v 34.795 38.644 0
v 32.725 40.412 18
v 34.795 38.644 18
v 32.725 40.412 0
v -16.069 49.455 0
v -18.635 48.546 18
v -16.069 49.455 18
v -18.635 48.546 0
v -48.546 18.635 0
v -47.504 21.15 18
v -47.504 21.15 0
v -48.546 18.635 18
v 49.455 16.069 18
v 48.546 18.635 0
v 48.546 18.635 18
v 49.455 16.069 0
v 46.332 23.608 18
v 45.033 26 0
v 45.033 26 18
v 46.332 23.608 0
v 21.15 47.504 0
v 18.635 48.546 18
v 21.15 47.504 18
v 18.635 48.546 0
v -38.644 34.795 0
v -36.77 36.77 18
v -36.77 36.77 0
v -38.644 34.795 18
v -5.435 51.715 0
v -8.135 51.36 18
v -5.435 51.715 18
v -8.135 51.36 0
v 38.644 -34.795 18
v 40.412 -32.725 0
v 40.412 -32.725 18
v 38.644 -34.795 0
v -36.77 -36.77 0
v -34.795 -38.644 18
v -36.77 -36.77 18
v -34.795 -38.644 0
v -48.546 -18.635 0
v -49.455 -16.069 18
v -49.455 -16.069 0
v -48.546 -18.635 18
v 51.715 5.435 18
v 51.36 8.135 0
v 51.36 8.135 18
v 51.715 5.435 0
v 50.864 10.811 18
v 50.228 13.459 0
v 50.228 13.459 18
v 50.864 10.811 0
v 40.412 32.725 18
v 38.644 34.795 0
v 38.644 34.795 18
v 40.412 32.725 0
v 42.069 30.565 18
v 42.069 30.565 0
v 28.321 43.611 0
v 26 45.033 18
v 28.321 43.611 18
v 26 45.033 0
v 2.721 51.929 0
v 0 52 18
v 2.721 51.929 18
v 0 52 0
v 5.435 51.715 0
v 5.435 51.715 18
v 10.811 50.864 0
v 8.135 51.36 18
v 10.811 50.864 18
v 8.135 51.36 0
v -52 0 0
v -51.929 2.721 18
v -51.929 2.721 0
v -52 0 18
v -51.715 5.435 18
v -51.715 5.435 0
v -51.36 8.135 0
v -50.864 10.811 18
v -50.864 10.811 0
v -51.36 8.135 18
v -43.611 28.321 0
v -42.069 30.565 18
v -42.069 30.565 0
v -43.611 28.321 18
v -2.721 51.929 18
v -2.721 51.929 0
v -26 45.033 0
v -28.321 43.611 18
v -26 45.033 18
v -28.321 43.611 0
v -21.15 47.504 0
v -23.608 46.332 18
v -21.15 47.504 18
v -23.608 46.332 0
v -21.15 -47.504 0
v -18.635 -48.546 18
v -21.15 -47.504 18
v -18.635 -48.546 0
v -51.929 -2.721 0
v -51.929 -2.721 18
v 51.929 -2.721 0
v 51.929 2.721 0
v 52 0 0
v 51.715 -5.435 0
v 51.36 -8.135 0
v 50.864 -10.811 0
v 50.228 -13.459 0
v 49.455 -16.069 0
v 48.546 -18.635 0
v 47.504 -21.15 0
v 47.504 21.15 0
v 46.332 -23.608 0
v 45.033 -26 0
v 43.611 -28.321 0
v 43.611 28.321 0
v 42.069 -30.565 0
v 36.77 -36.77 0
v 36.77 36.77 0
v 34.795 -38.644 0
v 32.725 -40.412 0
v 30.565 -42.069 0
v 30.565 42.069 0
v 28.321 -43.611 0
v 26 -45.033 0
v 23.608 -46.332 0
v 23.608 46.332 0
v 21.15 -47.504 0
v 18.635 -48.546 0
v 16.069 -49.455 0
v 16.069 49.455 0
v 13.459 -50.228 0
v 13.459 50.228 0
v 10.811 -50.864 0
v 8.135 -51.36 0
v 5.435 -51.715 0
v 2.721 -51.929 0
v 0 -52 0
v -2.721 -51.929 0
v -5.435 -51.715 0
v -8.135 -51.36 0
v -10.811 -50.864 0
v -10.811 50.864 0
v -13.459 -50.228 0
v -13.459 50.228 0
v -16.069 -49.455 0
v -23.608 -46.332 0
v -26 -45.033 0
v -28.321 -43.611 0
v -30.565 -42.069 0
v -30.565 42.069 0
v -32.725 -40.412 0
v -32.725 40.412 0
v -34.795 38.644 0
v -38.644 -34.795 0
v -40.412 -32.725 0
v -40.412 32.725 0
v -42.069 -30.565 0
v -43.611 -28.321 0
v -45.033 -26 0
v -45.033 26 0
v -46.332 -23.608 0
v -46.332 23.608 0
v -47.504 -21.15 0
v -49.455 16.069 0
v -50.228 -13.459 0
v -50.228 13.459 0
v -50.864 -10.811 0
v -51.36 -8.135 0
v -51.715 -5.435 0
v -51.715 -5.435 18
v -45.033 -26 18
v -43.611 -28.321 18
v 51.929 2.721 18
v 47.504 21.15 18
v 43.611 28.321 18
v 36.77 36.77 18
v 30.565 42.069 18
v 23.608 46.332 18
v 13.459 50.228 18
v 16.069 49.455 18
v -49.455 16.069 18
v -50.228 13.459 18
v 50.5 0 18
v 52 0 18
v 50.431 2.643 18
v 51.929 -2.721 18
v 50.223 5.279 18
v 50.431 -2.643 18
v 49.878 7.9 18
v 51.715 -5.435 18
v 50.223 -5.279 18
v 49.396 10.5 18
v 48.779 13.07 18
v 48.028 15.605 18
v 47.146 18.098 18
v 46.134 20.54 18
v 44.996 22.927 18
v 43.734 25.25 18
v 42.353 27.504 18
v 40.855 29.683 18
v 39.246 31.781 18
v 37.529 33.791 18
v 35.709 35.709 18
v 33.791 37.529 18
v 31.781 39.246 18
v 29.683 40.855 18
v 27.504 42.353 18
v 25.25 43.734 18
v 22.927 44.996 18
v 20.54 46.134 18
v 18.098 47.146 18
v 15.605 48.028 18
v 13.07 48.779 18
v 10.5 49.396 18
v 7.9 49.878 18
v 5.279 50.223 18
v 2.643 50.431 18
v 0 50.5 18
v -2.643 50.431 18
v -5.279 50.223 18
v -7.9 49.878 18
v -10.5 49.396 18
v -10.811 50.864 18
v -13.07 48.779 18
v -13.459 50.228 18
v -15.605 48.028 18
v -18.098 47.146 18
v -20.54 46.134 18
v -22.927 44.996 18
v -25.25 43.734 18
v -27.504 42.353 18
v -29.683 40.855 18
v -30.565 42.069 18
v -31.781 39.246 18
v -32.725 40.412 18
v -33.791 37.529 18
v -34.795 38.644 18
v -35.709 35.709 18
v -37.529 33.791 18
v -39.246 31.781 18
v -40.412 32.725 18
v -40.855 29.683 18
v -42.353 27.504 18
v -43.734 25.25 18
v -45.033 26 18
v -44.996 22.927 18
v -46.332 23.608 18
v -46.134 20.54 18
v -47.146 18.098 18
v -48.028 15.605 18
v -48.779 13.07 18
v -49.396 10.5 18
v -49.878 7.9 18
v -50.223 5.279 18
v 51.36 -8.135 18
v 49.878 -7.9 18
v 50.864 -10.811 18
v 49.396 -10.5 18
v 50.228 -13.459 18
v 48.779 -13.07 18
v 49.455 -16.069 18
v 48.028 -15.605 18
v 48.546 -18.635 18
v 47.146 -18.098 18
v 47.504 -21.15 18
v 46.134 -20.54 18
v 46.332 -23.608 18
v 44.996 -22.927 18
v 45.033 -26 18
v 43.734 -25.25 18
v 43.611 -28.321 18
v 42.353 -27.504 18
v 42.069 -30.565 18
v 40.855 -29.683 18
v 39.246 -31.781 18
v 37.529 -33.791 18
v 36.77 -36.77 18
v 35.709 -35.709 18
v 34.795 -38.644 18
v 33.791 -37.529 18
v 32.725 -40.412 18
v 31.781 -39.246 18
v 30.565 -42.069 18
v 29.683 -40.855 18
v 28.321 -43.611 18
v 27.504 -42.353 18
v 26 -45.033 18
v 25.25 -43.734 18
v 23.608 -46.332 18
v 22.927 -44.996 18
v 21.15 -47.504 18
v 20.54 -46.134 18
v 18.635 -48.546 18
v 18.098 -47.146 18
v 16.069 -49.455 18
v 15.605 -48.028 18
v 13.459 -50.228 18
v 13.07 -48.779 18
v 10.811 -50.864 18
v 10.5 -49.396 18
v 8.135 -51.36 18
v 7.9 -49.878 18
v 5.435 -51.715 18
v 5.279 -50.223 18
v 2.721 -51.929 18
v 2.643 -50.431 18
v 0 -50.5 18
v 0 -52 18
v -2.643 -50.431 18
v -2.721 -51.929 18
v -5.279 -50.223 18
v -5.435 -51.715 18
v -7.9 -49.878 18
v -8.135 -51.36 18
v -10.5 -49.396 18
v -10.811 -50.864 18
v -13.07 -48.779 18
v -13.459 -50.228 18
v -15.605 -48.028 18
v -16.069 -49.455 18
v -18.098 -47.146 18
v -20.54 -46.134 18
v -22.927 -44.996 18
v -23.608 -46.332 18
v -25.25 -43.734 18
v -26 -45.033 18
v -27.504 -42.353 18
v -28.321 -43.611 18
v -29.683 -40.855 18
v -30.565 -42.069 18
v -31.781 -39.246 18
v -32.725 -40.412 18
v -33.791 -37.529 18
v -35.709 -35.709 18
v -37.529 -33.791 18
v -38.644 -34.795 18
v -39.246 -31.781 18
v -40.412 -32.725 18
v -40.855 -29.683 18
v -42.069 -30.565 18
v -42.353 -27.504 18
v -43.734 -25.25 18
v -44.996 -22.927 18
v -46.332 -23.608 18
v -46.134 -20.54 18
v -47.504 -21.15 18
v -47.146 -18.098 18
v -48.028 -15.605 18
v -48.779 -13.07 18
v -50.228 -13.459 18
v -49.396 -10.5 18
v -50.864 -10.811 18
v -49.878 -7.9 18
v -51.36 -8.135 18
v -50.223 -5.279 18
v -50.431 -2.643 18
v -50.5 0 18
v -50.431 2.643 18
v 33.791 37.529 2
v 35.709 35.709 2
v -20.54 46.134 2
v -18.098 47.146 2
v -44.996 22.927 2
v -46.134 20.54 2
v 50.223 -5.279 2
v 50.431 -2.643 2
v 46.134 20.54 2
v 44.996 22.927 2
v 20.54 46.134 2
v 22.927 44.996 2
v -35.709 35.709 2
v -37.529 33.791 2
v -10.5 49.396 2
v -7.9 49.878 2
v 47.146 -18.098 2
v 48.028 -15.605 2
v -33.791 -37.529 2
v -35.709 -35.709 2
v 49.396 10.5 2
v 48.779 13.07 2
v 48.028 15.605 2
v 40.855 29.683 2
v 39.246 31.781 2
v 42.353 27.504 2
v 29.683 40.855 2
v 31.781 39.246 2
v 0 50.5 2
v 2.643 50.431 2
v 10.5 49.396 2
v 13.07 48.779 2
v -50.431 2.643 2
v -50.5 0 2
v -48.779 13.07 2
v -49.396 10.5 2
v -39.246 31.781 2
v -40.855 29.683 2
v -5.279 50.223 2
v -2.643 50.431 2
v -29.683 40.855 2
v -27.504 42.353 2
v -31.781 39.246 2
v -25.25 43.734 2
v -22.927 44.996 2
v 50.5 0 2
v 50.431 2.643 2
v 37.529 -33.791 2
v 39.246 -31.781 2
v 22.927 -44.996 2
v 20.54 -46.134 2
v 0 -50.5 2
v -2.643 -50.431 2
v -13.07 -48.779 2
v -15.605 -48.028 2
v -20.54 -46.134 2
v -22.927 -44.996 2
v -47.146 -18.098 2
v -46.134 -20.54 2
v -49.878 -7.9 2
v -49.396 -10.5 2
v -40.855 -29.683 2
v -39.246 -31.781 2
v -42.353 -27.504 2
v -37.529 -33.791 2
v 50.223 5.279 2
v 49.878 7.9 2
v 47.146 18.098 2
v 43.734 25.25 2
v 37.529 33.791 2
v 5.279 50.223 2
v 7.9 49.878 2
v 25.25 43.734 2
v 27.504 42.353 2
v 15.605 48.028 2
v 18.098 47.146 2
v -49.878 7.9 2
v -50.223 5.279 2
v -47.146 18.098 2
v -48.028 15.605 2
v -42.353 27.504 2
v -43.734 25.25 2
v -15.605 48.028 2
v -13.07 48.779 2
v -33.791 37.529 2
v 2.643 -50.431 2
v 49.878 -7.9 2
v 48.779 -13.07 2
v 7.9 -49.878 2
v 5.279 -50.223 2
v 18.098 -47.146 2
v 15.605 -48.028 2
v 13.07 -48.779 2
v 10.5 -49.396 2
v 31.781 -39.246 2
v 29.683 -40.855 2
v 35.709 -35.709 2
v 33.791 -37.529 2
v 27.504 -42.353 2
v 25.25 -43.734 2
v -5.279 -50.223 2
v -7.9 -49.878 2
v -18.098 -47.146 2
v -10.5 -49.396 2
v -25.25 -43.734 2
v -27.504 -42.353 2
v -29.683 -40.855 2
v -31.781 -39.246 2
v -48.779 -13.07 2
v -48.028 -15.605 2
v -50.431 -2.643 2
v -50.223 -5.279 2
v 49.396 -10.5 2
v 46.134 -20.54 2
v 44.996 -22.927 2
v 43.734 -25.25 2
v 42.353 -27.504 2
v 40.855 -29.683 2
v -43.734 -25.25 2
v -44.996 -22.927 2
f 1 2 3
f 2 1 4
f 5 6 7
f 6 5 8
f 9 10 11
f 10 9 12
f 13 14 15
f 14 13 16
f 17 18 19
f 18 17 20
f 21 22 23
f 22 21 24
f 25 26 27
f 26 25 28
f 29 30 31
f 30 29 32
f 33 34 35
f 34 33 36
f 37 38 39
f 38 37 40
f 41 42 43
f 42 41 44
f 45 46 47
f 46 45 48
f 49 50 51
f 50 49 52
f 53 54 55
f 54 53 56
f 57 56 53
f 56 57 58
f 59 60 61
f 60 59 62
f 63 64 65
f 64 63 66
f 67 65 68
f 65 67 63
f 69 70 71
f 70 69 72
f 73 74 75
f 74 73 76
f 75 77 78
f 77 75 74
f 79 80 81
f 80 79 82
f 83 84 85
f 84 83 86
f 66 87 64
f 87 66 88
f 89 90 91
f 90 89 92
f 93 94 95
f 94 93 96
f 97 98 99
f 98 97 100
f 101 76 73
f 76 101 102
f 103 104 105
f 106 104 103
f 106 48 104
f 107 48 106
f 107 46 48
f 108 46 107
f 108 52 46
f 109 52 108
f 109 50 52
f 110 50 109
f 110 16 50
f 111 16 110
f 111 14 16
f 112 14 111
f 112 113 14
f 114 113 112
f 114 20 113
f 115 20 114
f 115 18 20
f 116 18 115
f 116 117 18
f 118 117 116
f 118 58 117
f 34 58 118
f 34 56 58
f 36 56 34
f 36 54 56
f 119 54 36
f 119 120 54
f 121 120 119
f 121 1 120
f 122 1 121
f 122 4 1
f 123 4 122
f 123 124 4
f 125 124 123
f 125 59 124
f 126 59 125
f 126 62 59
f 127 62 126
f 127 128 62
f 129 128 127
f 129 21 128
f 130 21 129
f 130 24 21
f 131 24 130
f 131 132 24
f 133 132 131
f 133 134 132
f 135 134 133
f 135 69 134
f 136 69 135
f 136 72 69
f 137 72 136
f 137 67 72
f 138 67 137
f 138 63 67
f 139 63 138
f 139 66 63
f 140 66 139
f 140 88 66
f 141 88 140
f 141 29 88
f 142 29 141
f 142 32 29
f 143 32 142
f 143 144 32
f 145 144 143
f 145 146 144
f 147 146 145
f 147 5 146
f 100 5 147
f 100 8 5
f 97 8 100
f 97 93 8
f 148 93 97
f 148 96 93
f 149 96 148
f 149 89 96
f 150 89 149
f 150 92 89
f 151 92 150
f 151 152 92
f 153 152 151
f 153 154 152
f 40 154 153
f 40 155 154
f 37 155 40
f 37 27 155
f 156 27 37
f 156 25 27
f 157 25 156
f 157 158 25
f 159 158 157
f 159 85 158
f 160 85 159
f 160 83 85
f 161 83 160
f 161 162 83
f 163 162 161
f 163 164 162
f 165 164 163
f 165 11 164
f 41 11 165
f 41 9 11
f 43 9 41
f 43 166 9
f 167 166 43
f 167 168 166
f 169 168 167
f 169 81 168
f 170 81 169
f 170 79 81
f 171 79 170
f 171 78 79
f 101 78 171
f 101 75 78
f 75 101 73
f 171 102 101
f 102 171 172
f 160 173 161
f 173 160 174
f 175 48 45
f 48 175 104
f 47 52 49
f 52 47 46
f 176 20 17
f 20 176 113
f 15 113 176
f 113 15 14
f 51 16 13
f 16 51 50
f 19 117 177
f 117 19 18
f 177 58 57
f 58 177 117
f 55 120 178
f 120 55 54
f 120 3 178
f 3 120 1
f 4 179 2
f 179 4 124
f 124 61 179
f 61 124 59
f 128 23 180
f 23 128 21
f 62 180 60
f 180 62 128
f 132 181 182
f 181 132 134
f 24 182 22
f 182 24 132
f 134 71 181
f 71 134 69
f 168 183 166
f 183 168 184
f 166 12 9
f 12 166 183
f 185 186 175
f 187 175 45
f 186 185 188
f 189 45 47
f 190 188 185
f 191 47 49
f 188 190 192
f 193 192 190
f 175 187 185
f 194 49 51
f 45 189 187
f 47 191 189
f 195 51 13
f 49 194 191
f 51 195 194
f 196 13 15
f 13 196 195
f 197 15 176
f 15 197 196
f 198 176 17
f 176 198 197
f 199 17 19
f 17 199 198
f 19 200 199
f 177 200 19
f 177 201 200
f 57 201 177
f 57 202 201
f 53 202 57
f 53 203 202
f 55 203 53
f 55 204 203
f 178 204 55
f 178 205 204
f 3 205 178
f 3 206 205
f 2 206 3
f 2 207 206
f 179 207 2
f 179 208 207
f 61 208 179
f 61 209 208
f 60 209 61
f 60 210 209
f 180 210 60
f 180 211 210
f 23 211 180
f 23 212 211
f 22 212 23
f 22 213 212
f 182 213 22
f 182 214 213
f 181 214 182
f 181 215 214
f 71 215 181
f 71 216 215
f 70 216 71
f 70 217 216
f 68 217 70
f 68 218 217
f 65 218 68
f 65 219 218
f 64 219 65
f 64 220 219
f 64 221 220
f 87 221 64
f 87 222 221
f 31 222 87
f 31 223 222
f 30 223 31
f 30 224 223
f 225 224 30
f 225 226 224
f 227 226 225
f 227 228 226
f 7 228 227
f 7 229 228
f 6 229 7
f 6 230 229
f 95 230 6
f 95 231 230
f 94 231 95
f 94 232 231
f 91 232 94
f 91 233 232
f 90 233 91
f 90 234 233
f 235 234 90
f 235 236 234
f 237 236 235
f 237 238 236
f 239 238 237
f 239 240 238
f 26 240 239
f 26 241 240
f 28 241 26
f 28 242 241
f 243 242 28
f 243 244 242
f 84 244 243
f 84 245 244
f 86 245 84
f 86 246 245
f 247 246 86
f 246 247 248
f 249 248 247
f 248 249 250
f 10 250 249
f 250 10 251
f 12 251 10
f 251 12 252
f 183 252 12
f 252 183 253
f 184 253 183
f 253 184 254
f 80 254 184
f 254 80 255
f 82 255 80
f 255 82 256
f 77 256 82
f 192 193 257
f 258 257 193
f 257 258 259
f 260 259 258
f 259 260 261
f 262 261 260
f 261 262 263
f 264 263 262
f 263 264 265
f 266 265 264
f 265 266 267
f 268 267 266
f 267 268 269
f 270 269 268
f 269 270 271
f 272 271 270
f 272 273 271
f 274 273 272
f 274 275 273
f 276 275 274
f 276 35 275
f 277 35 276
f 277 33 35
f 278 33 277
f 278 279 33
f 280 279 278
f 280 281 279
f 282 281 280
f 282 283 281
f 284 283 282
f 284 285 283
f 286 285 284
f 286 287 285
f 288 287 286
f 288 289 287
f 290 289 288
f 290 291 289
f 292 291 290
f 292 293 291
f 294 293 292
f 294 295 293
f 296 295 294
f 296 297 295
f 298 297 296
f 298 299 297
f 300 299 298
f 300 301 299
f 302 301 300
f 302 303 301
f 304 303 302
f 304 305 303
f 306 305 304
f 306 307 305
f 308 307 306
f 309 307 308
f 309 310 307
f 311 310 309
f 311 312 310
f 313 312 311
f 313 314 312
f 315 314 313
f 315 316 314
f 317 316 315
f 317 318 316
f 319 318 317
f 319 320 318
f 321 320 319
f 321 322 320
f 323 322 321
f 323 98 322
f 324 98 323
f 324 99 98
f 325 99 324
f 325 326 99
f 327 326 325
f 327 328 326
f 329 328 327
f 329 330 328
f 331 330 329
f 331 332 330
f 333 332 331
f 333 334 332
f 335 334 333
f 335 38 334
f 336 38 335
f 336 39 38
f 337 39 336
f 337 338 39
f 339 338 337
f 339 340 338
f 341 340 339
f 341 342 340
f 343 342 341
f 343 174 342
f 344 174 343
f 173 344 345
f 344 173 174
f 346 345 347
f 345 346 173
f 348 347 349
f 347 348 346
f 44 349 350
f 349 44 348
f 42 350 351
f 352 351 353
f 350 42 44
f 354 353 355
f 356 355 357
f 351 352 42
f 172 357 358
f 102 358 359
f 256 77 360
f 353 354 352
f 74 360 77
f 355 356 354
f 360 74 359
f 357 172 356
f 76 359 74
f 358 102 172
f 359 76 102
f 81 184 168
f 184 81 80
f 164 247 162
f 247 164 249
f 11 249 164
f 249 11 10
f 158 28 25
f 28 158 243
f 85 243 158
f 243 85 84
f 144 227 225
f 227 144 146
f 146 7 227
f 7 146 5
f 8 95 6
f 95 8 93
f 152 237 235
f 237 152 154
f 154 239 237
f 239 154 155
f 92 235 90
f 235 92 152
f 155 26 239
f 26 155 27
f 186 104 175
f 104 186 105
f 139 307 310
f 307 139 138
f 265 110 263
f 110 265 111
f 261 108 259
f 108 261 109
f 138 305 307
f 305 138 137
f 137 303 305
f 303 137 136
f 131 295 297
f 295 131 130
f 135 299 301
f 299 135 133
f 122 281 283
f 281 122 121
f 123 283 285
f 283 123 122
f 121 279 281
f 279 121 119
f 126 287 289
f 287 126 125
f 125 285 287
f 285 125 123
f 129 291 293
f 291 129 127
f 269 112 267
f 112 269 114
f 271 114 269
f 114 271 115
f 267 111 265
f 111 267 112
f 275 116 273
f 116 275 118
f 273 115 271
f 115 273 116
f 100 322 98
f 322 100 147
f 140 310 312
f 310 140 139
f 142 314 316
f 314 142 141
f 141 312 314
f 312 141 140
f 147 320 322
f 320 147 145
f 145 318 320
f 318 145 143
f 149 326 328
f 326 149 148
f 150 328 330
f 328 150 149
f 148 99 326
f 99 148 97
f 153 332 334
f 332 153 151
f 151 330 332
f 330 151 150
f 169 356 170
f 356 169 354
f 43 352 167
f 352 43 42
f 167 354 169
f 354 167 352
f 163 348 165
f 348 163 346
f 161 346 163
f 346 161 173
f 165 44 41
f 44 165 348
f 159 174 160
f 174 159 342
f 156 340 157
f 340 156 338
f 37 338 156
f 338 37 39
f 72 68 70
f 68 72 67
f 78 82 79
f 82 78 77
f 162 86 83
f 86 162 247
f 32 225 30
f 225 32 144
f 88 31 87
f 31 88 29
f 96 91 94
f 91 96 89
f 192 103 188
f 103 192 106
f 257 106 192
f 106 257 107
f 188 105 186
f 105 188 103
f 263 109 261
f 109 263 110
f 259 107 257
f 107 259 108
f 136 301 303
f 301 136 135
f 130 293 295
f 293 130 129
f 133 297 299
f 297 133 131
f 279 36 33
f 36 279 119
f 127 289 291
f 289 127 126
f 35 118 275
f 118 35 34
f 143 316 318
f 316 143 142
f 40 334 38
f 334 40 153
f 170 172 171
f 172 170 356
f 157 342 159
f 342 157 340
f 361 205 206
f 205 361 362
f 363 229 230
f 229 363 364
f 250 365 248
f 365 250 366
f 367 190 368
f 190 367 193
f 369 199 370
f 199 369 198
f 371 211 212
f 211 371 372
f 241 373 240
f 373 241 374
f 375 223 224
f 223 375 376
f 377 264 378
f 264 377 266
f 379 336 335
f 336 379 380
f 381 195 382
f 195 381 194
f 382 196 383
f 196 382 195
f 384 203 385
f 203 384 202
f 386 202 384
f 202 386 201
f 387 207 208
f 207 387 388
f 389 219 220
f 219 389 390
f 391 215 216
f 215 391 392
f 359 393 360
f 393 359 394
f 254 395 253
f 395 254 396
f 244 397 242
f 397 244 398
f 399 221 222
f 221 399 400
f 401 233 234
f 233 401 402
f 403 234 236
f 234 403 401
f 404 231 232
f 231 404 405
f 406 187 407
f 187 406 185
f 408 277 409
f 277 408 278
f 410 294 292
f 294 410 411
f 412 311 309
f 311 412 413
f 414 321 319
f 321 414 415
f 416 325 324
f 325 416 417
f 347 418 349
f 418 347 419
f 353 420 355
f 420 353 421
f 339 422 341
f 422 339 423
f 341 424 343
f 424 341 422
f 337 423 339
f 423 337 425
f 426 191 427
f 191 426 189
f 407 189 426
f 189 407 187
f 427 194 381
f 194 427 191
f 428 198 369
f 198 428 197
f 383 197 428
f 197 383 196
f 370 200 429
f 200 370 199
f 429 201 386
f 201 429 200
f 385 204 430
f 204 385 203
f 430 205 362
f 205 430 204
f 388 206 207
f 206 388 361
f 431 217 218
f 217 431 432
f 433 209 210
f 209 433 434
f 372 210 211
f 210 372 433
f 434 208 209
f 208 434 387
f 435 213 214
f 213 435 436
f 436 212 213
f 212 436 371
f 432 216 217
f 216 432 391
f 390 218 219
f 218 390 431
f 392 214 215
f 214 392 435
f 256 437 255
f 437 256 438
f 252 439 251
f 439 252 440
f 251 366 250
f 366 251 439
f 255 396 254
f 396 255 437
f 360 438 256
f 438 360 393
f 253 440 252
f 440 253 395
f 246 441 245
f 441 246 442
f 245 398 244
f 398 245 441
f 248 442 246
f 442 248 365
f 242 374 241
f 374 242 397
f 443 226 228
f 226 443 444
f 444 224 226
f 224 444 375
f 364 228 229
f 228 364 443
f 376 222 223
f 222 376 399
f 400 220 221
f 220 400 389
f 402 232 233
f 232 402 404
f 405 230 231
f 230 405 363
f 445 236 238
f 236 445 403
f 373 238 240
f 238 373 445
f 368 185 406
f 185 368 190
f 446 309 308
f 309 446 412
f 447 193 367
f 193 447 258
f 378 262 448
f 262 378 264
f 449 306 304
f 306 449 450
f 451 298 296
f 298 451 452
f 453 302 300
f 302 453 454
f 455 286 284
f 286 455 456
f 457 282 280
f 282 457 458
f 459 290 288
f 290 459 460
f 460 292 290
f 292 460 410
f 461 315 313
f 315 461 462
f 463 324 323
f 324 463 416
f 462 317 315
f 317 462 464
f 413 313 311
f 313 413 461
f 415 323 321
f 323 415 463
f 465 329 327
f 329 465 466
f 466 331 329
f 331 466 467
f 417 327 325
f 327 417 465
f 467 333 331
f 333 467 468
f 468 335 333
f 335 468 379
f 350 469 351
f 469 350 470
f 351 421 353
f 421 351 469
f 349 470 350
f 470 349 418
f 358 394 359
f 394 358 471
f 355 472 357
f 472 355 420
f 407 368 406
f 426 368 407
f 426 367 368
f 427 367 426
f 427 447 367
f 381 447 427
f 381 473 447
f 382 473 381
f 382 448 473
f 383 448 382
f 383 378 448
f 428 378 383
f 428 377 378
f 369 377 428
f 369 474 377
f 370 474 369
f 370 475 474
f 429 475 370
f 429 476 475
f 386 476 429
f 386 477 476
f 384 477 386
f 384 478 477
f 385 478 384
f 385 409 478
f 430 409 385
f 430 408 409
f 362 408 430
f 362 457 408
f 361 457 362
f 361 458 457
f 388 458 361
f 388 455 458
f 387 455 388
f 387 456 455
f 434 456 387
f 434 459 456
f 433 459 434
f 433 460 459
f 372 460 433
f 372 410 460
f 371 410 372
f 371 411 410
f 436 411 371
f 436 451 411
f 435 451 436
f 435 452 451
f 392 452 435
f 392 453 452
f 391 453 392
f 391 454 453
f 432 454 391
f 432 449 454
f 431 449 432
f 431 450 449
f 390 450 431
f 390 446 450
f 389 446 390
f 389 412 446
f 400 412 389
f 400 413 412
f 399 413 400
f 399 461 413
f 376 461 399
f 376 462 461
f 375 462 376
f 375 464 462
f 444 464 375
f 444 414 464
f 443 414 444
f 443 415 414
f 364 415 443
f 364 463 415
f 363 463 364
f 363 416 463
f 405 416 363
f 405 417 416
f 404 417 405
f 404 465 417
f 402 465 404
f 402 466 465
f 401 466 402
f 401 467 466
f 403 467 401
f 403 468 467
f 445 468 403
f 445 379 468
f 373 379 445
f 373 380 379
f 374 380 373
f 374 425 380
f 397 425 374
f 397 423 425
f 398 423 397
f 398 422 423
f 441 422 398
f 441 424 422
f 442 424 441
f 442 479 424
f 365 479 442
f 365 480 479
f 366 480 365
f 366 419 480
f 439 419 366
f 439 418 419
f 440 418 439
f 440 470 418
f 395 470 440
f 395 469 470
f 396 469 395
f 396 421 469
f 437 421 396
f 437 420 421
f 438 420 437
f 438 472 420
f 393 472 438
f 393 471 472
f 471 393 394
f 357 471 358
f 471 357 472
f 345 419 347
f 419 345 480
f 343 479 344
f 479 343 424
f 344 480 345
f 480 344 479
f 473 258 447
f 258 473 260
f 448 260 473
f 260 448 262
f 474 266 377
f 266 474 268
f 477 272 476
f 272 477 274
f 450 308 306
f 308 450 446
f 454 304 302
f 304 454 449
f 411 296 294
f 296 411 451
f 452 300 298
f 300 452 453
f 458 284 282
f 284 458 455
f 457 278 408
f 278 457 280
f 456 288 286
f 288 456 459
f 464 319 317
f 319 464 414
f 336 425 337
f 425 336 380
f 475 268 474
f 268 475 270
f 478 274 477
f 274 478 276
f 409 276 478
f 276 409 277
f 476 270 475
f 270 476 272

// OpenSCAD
difference()
{
    cylinder(r=52, h=18, $fn=120);
    translate([0,0,2]) cylinder(r=50.5, h=18, $fn=120);   
}
